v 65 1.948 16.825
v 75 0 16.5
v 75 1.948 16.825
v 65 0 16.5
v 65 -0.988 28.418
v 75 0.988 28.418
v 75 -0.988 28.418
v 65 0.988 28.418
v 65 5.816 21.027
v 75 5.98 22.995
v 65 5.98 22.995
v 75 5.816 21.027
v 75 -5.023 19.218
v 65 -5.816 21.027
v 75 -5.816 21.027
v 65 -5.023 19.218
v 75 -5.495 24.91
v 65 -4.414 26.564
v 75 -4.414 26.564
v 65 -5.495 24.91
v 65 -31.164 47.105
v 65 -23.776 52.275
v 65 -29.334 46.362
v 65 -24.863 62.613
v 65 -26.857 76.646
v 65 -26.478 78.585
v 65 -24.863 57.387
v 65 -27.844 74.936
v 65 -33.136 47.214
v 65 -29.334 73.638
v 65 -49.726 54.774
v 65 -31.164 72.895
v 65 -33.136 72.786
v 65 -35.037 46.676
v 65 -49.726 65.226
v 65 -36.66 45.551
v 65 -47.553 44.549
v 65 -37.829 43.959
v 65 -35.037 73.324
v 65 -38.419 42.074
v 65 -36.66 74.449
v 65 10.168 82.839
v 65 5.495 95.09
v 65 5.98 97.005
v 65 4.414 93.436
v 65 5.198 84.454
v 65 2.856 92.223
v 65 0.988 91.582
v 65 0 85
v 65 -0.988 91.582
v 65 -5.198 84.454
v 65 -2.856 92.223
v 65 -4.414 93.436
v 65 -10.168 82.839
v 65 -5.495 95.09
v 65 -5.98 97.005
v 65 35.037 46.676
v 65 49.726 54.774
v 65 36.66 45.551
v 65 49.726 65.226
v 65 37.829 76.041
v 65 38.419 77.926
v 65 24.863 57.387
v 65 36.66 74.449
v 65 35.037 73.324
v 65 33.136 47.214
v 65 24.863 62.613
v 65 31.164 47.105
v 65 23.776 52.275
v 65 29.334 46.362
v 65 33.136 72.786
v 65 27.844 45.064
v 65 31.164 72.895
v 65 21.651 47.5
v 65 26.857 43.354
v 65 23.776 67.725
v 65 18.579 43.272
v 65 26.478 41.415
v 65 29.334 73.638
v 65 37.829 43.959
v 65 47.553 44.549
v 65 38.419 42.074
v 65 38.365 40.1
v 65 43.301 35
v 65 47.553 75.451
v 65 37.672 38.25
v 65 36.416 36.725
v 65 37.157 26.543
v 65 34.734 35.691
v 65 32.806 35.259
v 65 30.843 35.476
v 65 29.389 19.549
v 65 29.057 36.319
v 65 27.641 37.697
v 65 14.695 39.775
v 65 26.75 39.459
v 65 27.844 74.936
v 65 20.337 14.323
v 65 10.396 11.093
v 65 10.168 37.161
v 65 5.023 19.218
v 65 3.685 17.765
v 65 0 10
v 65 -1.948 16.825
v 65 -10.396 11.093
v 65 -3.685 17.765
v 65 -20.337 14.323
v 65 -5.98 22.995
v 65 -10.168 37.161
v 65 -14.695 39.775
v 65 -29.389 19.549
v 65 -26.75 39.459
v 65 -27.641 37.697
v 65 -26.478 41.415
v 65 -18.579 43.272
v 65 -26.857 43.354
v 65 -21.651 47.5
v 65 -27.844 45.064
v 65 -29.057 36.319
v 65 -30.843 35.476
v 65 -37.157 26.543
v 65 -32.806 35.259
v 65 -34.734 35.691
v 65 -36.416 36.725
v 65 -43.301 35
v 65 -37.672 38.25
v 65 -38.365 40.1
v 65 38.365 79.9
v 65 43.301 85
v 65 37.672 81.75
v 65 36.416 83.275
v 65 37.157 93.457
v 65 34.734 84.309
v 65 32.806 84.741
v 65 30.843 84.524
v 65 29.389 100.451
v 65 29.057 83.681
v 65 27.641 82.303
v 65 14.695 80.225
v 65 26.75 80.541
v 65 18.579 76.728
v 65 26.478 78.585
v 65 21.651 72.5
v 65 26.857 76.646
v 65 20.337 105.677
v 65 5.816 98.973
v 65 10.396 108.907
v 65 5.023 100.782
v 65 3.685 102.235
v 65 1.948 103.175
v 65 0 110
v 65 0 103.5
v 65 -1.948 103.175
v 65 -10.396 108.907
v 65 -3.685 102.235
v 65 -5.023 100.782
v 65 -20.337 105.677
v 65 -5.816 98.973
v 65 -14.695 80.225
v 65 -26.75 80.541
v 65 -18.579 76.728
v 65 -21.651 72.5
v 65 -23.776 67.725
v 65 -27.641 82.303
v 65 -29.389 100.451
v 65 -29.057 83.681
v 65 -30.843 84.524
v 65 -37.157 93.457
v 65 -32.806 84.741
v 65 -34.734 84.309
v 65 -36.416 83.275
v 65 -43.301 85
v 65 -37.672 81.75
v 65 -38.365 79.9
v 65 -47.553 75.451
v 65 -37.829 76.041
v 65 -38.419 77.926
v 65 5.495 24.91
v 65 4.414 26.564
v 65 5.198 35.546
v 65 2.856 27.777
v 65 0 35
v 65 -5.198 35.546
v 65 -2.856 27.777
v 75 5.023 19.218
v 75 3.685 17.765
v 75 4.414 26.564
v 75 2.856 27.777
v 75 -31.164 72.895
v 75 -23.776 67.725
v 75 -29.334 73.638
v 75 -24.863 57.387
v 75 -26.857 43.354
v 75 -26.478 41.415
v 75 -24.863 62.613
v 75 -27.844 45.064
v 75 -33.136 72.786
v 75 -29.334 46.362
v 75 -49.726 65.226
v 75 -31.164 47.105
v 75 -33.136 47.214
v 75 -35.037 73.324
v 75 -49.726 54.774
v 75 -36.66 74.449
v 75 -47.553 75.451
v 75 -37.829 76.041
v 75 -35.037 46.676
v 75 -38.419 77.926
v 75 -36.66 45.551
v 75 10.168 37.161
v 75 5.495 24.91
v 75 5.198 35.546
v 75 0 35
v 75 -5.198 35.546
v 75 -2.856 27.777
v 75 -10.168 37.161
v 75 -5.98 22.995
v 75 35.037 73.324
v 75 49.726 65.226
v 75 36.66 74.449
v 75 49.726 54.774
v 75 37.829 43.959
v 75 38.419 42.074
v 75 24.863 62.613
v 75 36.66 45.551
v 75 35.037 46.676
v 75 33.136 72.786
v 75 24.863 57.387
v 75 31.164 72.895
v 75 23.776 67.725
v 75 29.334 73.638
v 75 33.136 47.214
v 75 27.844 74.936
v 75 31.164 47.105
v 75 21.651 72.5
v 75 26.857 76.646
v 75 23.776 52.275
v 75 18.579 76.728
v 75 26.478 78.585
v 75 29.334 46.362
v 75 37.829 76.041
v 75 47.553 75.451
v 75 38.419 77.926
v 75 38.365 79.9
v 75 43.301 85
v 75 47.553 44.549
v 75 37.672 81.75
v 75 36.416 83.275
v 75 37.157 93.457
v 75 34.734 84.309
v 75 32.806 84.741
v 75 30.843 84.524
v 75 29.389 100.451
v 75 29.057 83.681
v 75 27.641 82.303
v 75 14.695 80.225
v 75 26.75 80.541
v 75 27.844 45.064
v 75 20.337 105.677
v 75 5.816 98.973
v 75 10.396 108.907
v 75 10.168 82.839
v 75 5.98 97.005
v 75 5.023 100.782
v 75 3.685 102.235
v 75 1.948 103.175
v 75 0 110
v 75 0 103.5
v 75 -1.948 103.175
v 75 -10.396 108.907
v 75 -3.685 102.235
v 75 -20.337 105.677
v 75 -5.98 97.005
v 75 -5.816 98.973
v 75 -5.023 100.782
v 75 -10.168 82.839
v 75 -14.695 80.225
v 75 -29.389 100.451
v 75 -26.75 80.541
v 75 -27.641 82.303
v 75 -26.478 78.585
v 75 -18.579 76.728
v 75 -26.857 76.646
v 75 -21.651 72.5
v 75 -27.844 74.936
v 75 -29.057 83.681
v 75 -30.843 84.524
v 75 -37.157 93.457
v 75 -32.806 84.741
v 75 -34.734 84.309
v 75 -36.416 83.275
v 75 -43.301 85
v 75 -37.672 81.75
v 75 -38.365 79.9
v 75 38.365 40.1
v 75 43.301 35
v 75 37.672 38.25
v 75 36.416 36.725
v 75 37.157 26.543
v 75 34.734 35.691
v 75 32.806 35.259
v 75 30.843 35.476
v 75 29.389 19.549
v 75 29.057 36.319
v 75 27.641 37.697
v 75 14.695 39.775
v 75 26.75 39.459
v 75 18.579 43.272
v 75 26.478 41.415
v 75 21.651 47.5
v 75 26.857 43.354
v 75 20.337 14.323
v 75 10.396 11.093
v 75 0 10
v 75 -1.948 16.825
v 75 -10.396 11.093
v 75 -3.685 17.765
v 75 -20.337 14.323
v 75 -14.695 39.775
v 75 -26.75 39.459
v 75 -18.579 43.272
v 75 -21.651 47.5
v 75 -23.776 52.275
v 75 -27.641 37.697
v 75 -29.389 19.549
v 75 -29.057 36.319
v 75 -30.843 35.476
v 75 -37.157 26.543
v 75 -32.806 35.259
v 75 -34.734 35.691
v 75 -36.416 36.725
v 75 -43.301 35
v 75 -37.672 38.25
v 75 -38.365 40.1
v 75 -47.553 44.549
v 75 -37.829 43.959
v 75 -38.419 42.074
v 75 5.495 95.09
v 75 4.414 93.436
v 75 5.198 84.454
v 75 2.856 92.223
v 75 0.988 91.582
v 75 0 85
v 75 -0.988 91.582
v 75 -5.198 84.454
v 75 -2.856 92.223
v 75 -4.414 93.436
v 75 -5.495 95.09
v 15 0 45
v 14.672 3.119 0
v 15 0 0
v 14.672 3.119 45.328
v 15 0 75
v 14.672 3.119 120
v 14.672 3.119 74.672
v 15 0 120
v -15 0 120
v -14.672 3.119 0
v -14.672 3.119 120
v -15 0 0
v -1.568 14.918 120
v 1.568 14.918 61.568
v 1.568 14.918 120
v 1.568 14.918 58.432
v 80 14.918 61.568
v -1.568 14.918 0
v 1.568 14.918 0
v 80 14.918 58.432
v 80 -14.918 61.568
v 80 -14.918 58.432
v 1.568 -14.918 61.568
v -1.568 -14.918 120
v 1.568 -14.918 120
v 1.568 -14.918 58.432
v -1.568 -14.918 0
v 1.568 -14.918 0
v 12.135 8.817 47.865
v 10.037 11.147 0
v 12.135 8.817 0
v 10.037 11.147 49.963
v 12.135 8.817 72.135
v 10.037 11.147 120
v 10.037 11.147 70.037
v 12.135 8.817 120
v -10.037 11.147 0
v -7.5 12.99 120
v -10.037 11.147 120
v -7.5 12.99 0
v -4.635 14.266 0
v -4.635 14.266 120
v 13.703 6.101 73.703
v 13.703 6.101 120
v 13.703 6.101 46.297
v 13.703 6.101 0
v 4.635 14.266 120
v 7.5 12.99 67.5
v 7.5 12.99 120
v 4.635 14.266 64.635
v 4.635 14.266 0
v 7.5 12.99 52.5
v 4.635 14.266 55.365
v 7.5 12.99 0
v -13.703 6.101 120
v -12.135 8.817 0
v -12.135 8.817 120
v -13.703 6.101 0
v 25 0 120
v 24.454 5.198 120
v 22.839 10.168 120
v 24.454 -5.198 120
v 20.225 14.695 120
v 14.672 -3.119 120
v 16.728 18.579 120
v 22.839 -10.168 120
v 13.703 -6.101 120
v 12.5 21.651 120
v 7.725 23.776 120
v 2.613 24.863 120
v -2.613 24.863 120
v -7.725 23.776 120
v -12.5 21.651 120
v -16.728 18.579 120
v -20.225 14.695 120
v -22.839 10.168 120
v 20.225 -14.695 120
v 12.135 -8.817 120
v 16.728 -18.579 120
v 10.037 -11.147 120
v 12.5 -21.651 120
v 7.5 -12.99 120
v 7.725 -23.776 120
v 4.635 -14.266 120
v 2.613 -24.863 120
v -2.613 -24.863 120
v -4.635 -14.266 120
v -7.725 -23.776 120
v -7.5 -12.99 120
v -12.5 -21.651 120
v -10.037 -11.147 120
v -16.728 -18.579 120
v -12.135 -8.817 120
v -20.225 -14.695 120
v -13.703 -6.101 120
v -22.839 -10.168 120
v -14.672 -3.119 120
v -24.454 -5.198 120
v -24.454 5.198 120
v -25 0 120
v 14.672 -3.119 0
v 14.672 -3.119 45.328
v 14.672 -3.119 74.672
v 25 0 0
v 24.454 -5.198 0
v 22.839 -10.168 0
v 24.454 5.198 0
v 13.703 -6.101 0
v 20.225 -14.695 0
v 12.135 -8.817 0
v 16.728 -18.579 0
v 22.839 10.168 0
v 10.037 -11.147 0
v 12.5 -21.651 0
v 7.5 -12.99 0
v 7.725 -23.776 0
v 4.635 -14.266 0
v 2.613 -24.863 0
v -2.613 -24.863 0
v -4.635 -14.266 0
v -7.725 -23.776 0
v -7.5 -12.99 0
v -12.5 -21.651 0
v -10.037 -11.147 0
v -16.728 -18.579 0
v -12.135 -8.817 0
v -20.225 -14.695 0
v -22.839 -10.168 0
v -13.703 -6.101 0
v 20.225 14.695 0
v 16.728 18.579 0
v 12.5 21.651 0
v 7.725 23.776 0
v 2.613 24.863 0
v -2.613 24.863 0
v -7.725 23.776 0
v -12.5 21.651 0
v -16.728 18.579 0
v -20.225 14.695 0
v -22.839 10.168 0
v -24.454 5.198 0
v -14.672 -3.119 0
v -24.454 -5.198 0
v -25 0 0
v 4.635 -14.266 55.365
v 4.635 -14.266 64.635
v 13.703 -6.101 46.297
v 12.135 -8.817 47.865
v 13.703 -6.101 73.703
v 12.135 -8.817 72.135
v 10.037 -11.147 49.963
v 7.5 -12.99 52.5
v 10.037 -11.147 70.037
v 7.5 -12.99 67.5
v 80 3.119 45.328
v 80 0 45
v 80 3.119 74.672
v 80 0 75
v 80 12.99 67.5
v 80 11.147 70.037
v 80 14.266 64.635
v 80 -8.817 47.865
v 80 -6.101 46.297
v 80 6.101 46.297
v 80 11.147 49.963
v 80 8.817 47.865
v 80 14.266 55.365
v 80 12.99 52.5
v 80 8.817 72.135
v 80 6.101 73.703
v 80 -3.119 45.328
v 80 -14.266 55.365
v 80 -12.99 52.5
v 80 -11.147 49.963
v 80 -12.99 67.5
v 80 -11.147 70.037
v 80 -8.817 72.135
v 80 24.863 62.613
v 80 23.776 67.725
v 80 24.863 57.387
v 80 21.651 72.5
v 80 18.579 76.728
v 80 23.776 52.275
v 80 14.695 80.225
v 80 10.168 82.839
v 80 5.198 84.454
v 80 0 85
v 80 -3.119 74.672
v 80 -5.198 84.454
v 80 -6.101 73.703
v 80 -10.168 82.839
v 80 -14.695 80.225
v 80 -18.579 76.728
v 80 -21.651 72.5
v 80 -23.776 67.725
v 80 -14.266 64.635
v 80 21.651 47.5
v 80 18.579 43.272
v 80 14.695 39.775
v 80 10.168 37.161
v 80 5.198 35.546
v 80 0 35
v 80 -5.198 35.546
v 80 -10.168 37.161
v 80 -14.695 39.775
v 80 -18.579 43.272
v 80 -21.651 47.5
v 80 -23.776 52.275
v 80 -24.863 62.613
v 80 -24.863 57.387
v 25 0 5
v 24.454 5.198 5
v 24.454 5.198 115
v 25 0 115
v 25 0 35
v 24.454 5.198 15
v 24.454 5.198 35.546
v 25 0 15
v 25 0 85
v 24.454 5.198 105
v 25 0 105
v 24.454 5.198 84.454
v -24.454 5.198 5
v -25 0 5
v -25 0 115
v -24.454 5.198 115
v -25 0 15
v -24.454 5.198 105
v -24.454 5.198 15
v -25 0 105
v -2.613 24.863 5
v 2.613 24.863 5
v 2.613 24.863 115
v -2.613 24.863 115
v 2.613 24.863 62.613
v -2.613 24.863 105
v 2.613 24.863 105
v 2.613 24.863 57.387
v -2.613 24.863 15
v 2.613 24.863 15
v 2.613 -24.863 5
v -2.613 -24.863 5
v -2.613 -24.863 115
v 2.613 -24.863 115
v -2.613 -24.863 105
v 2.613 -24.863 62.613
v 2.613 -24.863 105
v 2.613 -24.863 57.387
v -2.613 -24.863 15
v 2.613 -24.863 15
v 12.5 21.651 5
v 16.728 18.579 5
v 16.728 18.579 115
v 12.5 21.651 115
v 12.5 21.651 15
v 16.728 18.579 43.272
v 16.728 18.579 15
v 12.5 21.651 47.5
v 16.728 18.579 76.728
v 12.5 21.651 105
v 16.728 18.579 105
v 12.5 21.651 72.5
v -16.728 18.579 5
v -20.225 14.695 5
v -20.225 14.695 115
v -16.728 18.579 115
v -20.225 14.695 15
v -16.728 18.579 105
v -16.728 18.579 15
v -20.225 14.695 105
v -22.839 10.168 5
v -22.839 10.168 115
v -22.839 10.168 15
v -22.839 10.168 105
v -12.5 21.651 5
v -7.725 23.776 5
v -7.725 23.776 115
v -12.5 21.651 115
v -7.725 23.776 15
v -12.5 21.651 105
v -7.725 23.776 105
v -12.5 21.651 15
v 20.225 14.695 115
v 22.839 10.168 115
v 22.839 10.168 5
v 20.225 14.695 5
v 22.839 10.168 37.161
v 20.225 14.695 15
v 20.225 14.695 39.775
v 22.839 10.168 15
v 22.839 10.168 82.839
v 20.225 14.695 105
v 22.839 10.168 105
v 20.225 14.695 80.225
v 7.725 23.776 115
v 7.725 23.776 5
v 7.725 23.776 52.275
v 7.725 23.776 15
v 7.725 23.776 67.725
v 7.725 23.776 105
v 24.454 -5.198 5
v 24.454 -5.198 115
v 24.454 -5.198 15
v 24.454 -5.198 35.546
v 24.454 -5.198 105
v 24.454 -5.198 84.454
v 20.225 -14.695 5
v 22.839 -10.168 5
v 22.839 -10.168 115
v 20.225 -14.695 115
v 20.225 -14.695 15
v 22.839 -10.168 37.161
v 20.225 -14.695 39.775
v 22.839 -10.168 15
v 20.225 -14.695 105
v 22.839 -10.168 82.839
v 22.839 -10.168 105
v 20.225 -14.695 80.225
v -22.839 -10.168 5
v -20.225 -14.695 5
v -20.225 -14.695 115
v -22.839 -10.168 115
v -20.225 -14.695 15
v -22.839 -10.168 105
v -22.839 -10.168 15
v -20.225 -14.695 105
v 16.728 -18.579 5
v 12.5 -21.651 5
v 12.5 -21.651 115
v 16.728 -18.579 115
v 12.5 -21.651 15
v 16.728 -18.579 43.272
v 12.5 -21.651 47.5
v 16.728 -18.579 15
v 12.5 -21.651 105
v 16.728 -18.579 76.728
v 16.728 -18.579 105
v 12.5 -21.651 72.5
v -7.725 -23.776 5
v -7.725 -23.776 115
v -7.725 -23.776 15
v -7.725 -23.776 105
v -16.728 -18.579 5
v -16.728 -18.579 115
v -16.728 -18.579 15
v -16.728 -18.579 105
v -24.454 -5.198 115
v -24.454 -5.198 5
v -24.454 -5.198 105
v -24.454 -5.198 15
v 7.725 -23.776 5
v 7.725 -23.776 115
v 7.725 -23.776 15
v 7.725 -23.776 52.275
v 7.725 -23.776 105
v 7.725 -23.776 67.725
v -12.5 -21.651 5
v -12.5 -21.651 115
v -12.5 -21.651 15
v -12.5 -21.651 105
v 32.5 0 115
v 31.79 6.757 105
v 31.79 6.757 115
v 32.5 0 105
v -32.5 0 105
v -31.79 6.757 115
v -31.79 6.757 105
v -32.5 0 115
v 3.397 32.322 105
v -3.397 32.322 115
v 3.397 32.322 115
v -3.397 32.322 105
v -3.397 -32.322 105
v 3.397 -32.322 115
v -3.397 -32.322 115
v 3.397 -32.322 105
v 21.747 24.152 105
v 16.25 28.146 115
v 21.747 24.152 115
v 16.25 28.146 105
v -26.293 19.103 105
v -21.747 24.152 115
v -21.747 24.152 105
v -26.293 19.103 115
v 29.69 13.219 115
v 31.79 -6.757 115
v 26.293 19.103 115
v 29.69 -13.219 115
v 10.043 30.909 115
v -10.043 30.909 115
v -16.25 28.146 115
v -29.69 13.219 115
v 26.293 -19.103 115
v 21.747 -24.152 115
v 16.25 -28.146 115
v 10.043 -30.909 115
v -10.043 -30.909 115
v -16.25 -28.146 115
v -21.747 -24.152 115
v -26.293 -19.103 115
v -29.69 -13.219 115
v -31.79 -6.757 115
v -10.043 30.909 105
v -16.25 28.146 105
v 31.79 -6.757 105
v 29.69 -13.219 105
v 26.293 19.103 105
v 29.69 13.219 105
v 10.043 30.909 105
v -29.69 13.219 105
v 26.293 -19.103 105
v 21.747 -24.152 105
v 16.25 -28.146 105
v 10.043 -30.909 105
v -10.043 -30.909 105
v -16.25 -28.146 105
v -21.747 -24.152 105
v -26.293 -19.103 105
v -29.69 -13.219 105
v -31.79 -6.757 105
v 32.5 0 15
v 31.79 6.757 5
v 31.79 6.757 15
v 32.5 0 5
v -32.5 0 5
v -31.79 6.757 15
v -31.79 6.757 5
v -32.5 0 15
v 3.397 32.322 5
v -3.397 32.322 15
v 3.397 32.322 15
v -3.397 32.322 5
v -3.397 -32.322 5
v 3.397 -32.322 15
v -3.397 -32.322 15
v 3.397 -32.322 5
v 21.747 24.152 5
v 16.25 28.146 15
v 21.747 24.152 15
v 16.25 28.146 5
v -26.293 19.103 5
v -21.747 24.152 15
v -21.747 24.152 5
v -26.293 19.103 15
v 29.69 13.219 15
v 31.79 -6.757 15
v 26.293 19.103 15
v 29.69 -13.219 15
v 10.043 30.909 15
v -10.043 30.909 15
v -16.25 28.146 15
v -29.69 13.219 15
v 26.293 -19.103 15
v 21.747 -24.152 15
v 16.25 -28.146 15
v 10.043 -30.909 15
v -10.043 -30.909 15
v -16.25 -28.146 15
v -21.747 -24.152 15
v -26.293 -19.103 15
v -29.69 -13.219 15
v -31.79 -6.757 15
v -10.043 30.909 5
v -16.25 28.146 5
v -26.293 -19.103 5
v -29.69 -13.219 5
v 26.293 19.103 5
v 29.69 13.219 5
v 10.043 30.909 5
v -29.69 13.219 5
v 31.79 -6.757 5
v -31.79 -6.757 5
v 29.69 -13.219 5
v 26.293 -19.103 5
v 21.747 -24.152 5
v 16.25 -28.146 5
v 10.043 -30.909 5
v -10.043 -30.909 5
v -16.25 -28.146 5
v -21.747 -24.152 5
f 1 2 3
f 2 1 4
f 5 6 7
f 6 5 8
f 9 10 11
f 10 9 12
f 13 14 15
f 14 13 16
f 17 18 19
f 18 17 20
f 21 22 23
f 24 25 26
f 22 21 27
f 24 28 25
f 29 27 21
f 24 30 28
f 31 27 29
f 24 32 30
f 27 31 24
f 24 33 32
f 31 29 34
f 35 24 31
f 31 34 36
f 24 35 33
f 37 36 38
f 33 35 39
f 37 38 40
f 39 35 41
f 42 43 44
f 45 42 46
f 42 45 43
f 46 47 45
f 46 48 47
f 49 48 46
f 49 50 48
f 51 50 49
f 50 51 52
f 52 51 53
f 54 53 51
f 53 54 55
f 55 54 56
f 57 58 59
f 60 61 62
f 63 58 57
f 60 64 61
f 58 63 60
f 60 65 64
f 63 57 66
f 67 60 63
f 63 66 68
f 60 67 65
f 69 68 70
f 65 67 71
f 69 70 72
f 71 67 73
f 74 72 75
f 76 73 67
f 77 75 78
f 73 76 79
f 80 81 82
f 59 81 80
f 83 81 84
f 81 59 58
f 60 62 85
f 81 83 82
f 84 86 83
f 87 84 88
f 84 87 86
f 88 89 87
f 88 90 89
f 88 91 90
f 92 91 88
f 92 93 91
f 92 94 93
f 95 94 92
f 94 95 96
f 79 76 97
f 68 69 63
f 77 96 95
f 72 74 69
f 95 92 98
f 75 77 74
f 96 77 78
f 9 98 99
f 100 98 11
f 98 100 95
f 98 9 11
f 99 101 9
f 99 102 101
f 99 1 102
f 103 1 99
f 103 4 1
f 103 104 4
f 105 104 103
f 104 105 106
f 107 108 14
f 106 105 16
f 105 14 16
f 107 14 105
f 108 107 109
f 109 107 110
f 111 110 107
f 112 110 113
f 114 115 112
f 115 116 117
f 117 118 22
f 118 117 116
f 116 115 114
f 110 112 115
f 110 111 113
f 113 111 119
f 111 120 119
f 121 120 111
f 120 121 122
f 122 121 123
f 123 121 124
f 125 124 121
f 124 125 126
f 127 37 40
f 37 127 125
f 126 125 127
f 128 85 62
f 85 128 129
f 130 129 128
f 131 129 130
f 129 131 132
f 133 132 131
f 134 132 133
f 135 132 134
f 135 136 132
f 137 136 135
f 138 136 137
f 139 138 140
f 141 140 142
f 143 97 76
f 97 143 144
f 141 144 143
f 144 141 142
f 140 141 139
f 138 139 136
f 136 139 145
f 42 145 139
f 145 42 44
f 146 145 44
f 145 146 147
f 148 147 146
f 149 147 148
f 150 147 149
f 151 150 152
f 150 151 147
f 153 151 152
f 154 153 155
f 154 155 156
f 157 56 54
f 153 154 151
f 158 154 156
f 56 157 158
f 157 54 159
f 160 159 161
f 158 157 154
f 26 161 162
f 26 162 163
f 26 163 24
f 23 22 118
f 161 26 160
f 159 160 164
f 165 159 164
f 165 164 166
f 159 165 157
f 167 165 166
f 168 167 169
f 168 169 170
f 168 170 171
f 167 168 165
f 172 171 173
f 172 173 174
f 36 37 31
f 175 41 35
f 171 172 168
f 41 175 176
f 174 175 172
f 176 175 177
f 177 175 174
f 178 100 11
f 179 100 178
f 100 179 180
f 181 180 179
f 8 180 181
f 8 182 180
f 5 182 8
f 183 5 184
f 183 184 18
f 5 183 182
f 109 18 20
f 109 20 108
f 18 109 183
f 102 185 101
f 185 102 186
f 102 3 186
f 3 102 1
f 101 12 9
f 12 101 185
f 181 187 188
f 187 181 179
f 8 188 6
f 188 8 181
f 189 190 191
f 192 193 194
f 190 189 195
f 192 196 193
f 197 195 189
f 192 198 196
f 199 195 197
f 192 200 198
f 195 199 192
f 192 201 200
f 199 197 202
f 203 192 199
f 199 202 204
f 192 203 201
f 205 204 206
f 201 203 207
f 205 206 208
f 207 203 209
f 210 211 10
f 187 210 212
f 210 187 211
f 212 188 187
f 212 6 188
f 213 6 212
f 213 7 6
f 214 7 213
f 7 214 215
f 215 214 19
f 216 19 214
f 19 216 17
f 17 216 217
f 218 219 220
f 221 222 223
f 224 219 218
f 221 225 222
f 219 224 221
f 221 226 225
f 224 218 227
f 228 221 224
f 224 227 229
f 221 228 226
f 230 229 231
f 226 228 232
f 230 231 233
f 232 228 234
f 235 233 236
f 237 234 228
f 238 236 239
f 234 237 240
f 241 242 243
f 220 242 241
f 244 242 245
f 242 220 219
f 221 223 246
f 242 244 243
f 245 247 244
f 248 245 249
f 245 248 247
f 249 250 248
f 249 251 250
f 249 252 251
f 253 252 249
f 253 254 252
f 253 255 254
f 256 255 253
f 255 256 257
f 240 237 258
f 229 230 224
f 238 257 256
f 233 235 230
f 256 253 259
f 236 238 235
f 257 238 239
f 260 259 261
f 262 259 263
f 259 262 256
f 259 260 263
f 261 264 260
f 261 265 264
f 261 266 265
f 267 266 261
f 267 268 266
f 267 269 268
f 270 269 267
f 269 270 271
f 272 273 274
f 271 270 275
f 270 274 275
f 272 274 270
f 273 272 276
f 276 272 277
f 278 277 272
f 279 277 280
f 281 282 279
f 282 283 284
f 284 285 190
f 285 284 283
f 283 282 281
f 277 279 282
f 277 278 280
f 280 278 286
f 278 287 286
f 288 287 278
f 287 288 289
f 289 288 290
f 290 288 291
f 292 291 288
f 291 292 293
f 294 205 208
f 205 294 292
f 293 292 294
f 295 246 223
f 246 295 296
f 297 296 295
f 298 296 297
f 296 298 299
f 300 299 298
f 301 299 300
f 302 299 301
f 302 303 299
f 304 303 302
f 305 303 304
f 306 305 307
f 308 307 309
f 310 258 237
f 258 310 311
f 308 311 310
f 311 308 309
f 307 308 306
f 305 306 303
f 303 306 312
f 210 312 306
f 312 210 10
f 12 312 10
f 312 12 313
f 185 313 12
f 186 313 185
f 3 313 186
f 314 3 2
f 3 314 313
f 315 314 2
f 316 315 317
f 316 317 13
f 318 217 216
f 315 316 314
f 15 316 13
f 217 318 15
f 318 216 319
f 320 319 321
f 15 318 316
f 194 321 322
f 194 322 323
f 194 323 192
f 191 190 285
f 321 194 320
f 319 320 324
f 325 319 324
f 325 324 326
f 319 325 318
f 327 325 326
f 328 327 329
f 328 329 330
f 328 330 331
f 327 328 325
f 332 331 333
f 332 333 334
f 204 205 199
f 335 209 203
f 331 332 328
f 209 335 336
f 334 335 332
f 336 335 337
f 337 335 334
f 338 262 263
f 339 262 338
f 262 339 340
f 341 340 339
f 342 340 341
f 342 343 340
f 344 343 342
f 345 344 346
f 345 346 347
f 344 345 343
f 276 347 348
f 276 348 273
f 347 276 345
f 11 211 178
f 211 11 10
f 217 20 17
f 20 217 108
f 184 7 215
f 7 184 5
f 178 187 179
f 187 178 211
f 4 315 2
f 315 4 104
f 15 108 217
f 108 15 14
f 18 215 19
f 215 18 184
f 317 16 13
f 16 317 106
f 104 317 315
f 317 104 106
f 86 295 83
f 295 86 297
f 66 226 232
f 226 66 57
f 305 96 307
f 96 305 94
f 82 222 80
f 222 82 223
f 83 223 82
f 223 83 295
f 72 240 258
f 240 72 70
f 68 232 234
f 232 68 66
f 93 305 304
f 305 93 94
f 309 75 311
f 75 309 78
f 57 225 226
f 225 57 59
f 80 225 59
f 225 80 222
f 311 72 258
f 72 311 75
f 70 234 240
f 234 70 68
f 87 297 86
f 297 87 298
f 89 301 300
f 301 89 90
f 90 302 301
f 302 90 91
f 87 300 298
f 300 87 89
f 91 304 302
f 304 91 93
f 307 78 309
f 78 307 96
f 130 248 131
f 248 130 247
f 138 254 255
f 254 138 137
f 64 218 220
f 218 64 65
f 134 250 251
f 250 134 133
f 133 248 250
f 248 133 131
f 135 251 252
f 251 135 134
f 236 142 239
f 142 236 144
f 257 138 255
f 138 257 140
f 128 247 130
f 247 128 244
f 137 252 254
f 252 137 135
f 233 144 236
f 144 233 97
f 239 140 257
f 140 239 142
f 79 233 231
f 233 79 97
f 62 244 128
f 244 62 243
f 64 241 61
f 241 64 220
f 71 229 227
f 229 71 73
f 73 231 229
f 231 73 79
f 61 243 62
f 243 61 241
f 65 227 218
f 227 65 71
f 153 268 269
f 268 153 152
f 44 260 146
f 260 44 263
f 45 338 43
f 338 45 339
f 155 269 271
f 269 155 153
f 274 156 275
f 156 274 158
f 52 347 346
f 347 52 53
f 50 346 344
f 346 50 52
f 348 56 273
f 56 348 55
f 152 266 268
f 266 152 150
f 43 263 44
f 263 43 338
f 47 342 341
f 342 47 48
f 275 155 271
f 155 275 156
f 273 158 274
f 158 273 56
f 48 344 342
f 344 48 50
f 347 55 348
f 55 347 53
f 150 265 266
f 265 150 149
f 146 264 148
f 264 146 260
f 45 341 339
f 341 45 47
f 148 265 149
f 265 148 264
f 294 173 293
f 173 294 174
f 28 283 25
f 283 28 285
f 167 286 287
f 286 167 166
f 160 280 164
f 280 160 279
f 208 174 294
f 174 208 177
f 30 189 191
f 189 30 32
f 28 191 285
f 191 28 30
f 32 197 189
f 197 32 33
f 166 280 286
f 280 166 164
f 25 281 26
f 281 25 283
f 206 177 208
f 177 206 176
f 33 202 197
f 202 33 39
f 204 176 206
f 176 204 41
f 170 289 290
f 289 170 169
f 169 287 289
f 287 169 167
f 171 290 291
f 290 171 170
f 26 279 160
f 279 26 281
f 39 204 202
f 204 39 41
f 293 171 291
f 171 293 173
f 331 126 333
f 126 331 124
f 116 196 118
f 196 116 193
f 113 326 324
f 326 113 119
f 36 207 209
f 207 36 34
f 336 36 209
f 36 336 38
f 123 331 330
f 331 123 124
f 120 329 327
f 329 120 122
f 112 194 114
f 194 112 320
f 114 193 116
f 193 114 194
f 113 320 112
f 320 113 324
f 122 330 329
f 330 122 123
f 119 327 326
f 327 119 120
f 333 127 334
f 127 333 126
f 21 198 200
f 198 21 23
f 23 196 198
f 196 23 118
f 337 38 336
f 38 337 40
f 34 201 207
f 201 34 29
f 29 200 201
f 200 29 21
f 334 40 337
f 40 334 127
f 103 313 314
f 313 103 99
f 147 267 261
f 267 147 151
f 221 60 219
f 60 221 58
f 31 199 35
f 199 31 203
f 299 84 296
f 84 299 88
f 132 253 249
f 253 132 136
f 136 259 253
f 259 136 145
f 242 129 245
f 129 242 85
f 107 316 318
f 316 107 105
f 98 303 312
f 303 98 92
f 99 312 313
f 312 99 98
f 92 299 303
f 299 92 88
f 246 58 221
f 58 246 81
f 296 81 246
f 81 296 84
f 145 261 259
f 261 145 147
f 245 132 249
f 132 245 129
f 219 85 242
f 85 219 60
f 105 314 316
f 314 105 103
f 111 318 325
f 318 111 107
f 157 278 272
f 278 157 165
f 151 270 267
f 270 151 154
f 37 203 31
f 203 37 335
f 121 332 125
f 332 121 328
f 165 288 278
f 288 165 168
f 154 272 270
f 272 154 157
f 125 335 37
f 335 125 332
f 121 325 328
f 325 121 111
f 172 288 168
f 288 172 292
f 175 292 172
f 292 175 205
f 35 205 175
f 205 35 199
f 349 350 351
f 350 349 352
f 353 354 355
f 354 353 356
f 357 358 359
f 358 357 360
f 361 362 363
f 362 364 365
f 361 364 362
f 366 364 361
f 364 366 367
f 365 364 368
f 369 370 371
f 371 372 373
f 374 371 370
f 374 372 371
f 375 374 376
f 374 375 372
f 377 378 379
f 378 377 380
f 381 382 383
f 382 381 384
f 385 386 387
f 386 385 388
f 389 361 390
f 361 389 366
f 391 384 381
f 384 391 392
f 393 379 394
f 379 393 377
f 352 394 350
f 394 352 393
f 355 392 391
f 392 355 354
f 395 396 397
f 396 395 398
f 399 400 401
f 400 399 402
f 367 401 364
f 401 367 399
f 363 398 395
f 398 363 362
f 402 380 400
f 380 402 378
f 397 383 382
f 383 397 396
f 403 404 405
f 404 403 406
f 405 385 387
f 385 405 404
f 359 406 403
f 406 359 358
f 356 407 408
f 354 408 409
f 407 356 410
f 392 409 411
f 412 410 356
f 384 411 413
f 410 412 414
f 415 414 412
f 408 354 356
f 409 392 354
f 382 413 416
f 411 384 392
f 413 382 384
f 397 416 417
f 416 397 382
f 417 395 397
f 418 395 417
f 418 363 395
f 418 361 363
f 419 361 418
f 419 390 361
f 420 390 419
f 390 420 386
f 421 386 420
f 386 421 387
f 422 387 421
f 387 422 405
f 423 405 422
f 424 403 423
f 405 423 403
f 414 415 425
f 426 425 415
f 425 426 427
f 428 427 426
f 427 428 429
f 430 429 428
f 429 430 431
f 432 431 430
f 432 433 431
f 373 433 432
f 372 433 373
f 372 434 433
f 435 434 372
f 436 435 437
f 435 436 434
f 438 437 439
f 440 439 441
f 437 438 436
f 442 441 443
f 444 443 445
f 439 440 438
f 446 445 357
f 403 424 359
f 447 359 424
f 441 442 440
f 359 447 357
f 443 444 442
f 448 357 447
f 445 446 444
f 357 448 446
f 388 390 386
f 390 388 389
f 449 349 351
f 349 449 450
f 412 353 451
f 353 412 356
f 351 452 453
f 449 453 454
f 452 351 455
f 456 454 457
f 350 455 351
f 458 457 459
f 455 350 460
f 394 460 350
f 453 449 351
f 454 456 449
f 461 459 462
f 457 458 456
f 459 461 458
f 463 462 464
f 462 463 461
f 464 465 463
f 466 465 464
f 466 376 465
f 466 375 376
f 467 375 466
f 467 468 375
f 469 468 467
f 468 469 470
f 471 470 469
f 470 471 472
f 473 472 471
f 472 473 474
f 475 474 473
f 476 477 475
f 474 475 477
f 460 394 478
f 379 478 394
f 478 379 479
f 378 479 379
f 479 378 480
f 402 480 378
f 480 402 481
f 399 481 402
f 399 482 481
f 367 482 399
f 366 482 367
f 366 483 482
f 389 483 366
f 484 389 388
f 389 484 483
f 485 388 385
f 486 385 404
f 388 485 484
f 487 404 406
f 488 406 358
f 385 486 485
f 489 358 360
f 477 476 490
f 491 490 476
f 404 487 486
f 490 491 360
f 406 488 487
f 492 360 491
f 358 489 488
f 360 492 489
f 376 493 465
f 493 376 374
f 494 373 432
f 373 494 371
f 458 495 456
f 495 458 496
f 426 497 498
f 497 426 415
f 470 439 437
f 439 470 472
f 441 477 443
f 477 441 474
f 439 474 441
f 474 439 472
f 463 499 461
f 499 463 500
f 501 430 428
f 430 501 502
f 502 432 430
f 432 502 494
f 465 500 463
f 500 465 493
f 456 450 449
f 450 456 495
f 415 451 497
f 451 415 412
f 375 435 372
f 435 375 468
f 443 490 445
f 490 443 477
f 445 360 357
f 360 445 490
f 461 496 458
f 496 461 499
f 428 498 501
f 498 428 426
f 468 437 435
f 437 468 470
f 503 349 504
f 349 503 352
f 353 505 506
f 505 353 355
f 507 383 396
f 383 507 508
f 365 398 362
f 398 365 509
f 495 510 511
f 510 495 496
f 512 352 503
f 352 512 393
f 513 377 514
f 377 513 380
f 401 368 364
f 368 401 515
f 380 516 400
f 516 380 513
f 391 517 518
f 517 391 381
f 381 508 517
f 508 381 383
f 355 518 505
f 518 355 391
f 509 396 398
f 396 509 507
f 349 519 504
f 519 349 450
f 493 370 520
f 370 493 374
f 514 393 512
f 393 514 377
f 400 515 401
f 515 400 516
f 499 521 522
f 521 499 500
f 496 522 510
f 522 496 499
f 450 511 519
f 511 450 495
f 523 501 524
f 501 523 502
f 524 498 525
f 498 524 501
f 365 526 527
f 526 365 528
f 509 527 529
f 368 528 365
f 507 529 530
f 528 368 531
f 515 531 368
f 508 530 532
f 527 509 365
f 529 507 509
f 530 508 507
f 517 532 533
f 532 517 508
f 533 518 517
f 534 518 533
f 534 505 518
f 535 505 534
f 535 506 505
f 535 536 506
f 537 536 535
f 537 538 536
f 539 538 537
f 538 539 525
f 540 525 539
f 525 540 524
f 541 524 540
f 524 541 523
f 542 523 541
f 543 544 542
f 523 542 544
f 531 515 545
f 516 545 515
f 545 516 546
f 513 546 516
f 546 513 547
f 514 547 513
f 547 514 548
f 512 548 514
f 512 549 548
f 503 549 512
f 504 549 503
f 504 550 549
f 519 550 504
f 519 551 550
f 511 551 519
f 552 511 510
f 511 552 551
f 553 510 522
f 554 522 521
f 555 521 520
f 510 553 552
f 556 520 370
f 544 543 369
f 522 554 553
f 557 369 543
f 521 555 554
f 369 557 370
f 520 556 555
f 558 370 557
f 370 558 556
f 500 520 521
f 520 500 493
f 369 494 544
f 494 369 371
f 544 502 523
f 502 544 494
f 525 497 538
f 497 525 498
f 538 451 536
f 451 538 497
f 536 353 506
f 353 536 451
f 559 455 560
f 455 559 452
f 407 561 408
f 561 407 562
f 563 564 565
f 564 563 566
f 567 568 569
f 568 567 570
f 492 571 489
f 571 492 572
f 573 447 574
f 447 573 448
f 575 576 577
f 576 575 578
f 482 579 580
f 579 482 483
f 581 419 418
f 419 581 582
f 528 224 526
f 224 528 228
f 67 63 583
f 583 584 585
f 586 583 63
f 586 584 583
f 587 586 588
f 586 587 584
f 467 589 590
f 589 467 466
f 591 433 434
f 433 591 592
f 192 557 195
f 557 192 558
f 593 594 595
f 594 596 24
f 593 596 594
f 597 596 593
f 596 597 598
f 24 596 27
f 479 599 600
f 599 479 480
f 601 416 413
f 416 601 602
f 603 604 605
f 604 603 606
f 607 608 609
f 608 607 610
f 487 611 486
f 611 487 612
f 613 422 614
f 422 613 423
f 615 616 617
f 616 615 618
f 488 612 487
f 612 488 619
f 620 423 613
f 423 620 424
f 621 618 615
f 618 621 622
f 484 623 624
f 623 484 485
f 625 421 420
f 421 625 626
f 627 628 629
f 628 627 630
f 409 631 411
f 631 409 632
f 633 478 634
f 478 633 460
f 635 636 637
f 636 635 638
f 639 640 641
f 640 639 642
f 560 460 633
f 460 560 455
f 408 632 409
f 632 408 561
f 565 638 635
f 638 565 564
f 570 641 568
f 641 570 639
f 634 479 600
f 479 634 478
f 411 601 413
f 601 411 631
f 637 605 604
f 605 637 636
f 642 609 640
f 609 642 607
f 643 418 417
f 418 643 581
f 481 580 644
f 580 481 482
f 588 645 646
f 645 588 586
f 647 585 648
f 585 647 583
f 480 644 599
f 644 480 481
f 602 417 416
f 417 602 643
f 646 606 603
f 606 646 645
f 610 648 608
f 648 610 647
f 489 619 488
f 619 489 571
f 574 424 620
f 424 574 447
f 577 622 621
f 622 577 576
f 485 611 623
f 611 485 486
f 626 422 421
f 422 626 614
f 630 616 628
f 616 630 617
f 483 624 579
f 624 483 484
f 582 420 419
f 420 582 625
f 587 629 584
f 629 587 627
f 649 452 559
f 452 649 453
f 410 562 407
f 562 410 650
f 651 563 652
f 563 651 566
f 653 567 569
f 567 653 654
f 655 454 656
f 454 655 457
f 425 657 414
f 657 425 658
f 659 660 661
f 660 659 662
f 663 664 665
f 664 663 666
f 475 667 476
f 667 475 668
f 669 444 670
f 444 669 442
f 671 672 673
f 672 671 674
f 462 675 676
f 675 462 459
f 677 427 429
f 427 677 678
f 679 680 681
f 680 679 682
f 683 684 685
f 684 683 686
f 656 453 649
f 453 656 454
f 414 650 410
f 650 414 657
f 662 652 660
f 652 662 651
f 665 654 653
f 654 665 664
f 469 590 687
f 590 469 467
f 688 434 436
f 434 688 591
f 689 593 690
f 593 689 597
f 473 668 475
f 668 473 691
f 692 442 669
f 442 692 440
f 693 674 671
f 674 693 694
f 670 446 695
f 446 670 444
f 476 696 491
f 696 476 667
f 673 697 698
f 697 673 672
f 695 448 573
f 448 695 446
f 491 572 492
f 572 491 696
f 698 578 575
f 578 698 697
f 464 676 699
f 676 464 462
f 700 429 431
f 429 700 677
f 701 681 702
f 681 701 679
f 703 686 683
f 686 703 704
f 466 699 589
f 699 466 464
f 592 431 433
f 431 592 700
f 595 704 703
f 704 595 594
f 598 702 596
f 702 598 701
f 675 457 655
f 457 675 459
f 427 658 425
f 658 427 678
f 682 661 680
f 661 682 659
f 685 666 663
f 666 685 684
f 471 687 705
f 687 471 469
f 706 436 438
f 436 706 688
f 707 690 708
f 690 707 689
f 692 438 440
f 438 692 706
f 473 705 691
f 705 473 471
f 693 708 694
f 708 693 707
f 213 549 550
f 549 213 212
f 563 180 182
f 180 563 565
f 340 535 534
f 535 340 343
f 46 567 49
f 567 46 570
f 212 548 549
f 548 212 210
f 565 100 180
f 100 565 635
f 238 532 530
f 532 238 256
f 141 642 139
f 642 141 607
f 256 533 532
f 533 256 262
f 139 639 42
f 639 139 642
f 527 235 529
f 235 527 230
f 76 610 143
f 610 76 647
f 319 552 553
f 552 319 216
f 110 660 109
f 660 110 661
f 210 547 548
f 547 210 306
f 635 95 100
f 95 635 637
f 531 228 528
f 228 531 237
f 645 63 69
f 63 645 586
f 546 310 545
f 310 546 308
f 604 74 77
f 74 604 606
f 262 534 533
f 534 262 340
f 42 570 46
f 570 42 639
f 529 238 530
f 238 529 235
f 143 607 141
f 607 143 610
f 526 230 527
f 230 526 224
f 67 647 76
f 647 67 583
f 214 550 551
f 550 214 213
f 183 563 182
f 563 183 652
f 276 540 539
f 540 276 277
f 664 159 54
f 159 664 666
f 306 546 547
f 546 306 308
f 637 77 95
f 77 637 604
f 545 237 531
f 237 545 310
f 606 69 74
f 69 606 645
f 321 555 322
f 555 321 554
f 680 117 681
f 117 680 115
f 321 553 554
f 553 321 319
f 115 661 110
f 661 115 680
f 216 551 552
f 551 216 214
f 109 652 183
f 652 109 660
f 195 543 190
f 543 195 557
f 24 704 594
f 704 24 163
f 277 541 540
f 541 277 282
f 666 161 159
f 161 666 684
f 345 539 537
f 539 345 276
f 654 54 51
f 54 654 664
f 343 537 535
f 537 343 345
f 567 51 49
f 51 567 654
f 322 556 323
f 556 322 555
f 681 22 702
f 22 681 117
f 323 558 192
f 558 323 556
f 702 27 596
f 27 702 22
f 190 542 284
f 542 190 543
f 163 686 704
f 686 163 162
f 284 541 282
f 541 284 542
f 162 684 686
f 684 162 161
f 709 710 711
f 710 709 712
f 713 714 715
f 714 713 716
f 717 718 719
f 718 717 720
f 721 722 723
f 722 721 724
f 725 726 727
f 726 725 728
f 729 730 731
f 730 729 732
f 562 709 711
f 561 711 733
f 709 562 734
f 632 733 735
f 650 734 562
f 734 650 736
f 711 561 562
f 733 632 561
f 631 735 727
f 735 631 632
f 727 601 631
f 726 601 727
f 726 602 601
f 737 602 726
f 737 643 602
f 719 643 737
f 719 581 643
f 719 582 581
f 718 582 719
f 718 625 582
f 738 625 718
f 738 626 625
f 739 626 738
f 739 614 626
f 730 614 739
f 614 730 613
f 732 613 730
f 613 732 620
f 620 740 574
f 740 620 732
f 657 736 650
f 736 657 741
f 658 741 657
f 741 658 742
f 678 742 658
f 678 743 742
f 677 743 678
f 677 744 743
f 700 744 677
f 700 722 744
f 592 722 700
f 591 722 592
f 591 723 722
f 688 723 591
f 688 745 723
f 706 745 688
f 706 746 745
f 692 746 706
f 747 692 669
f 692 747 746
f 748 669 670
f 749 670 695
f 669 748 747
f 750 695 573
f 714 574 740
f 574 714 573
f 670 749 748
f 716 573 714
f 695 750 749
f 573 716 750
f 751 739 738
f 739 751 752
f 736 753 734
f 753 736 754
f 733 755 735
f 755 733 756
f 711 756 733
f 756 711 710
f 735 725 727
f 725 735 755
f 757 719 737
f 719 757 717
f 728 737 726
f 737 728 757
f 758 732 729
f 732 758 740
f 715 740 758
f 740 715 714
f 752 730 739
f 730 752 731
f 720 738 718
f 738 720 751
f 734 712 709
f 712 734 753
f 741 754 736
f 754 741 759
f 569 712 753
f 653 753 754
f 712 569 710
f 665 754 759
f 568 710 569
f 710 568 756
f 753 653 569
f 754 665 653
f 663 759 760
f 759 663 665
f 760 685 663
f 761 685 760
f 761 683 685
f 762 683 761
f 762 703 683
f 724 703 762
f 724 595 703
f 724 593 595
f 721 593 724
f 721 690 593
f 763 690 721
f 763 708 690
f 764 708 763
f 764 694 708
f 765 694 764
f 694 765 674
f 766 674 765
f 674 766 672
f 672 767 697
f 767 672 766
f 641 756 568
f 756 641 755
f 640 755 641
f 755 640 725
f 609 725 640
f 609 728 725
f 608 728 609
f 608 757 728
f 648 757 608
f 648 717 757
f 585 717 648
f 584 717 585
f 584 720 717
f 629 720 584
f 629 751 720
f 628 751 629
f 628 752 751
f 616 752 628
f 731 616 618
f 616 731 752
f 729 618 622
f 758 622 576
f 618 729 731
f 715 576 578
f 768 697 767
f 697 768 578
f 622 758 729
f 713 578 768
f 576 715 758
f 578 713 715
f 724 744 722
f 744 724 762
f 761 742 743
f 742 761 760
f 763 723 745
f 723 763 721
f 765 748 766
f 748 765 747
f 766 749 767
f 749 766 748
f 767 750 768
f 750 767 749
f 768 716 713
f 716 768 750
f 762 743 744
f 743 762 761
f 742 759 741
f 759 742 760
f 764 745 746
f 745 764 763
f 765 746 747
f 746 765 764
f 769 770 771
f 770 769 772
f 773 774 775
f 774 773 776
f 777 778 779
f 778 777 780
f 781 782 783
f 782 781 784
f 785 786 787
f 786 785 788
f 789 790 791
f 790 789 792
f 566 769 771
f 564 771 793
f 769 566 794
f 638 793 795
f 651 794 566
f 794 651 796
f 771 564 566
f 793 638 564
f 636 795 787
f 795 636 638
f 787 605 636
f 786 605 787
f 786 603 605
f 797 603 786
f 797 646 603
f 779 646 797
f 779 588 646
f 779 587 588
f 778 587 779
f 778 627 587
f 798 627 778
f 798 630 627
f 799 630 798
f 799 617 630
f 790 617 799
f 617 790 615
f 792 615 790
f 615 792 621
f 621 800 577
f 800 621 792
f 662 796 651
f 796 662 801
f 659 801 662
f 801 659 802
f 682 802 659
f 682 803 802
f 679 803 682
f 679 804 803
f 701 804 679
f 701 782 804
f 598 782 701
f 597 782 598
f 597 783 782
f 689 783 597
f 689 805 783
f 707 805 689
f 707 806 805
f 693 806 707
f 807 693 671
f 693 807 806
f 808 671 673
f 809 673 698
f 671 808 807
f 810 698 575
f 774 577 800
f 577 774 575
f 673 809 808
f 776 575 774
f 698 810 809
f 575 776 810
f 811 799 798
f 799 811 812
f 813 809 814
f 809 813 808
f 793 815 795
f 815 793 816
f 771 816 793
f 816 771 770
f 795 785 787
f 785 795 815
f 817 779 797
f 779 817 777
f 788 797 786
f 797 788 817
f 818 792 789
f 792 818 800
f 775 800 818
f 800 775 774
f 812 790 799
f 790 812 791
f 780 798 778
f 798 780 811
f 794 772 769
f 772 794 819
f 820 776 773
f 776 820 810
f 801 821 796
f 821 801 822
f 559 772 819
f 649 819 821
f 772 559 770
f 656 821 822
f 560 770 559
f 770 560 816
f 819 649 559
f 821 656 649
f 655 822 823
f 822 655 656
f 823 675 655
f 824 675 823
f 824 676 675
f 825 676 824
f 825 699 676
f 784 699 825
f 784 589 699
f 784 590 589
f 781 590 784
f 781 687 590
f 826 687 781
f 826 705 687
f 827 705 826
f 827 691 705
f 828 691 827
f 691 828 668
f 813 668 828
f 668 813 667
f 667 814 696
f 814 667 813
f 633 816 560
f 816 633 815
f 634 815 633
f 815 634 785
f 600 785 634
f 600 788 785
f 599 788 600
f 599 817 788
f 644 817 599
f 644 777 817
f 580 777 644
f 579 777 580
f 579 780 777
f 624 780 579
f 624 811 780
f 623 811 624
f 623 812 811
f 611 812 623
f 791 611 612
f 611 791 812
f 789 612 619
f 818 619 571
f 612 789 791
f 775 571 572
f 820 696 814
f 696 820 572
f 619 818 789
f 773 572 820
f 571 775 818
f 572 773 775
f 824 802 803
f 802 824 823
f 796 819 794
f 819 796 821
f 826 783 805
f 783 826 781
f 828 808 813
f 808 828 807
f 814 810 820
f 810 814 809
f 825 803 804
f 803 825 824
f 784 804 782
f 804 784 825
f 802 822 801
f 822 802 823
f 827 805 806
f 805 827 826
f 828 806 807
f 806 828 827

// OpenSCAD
// author: Xiaoqi Zhao
// date: 2022-12-07

module sidePan() {
    difference() {
        cylinder(10,50,50);
        
        for (i=[0:60:300]) {
            rotate([0,0,i]) translate([75/2,0,0]) cylinder(10,6,6);
        }
    }
}

difference() {

    union() {
        cylinder(120,50/2,50/2);
        translate([0,0,60]) rotate([0,90,0]) cylinder(80,50/2,50/2);
        translate([80-5-10,0,60]) rotate([0,90,0]) sidePan();
        translate([0,0,120-5-10]) cylinder(10,65/2,65/2);
        translate([0,0,5]) cylinder(10,65/2,65/2);
    }
    
    union () {
        cylinder(120,30/2,30/2);
        translate([0,0,60]) rotate([0,90,0]) cylinder(80,30/2,30/2);
    }
}
